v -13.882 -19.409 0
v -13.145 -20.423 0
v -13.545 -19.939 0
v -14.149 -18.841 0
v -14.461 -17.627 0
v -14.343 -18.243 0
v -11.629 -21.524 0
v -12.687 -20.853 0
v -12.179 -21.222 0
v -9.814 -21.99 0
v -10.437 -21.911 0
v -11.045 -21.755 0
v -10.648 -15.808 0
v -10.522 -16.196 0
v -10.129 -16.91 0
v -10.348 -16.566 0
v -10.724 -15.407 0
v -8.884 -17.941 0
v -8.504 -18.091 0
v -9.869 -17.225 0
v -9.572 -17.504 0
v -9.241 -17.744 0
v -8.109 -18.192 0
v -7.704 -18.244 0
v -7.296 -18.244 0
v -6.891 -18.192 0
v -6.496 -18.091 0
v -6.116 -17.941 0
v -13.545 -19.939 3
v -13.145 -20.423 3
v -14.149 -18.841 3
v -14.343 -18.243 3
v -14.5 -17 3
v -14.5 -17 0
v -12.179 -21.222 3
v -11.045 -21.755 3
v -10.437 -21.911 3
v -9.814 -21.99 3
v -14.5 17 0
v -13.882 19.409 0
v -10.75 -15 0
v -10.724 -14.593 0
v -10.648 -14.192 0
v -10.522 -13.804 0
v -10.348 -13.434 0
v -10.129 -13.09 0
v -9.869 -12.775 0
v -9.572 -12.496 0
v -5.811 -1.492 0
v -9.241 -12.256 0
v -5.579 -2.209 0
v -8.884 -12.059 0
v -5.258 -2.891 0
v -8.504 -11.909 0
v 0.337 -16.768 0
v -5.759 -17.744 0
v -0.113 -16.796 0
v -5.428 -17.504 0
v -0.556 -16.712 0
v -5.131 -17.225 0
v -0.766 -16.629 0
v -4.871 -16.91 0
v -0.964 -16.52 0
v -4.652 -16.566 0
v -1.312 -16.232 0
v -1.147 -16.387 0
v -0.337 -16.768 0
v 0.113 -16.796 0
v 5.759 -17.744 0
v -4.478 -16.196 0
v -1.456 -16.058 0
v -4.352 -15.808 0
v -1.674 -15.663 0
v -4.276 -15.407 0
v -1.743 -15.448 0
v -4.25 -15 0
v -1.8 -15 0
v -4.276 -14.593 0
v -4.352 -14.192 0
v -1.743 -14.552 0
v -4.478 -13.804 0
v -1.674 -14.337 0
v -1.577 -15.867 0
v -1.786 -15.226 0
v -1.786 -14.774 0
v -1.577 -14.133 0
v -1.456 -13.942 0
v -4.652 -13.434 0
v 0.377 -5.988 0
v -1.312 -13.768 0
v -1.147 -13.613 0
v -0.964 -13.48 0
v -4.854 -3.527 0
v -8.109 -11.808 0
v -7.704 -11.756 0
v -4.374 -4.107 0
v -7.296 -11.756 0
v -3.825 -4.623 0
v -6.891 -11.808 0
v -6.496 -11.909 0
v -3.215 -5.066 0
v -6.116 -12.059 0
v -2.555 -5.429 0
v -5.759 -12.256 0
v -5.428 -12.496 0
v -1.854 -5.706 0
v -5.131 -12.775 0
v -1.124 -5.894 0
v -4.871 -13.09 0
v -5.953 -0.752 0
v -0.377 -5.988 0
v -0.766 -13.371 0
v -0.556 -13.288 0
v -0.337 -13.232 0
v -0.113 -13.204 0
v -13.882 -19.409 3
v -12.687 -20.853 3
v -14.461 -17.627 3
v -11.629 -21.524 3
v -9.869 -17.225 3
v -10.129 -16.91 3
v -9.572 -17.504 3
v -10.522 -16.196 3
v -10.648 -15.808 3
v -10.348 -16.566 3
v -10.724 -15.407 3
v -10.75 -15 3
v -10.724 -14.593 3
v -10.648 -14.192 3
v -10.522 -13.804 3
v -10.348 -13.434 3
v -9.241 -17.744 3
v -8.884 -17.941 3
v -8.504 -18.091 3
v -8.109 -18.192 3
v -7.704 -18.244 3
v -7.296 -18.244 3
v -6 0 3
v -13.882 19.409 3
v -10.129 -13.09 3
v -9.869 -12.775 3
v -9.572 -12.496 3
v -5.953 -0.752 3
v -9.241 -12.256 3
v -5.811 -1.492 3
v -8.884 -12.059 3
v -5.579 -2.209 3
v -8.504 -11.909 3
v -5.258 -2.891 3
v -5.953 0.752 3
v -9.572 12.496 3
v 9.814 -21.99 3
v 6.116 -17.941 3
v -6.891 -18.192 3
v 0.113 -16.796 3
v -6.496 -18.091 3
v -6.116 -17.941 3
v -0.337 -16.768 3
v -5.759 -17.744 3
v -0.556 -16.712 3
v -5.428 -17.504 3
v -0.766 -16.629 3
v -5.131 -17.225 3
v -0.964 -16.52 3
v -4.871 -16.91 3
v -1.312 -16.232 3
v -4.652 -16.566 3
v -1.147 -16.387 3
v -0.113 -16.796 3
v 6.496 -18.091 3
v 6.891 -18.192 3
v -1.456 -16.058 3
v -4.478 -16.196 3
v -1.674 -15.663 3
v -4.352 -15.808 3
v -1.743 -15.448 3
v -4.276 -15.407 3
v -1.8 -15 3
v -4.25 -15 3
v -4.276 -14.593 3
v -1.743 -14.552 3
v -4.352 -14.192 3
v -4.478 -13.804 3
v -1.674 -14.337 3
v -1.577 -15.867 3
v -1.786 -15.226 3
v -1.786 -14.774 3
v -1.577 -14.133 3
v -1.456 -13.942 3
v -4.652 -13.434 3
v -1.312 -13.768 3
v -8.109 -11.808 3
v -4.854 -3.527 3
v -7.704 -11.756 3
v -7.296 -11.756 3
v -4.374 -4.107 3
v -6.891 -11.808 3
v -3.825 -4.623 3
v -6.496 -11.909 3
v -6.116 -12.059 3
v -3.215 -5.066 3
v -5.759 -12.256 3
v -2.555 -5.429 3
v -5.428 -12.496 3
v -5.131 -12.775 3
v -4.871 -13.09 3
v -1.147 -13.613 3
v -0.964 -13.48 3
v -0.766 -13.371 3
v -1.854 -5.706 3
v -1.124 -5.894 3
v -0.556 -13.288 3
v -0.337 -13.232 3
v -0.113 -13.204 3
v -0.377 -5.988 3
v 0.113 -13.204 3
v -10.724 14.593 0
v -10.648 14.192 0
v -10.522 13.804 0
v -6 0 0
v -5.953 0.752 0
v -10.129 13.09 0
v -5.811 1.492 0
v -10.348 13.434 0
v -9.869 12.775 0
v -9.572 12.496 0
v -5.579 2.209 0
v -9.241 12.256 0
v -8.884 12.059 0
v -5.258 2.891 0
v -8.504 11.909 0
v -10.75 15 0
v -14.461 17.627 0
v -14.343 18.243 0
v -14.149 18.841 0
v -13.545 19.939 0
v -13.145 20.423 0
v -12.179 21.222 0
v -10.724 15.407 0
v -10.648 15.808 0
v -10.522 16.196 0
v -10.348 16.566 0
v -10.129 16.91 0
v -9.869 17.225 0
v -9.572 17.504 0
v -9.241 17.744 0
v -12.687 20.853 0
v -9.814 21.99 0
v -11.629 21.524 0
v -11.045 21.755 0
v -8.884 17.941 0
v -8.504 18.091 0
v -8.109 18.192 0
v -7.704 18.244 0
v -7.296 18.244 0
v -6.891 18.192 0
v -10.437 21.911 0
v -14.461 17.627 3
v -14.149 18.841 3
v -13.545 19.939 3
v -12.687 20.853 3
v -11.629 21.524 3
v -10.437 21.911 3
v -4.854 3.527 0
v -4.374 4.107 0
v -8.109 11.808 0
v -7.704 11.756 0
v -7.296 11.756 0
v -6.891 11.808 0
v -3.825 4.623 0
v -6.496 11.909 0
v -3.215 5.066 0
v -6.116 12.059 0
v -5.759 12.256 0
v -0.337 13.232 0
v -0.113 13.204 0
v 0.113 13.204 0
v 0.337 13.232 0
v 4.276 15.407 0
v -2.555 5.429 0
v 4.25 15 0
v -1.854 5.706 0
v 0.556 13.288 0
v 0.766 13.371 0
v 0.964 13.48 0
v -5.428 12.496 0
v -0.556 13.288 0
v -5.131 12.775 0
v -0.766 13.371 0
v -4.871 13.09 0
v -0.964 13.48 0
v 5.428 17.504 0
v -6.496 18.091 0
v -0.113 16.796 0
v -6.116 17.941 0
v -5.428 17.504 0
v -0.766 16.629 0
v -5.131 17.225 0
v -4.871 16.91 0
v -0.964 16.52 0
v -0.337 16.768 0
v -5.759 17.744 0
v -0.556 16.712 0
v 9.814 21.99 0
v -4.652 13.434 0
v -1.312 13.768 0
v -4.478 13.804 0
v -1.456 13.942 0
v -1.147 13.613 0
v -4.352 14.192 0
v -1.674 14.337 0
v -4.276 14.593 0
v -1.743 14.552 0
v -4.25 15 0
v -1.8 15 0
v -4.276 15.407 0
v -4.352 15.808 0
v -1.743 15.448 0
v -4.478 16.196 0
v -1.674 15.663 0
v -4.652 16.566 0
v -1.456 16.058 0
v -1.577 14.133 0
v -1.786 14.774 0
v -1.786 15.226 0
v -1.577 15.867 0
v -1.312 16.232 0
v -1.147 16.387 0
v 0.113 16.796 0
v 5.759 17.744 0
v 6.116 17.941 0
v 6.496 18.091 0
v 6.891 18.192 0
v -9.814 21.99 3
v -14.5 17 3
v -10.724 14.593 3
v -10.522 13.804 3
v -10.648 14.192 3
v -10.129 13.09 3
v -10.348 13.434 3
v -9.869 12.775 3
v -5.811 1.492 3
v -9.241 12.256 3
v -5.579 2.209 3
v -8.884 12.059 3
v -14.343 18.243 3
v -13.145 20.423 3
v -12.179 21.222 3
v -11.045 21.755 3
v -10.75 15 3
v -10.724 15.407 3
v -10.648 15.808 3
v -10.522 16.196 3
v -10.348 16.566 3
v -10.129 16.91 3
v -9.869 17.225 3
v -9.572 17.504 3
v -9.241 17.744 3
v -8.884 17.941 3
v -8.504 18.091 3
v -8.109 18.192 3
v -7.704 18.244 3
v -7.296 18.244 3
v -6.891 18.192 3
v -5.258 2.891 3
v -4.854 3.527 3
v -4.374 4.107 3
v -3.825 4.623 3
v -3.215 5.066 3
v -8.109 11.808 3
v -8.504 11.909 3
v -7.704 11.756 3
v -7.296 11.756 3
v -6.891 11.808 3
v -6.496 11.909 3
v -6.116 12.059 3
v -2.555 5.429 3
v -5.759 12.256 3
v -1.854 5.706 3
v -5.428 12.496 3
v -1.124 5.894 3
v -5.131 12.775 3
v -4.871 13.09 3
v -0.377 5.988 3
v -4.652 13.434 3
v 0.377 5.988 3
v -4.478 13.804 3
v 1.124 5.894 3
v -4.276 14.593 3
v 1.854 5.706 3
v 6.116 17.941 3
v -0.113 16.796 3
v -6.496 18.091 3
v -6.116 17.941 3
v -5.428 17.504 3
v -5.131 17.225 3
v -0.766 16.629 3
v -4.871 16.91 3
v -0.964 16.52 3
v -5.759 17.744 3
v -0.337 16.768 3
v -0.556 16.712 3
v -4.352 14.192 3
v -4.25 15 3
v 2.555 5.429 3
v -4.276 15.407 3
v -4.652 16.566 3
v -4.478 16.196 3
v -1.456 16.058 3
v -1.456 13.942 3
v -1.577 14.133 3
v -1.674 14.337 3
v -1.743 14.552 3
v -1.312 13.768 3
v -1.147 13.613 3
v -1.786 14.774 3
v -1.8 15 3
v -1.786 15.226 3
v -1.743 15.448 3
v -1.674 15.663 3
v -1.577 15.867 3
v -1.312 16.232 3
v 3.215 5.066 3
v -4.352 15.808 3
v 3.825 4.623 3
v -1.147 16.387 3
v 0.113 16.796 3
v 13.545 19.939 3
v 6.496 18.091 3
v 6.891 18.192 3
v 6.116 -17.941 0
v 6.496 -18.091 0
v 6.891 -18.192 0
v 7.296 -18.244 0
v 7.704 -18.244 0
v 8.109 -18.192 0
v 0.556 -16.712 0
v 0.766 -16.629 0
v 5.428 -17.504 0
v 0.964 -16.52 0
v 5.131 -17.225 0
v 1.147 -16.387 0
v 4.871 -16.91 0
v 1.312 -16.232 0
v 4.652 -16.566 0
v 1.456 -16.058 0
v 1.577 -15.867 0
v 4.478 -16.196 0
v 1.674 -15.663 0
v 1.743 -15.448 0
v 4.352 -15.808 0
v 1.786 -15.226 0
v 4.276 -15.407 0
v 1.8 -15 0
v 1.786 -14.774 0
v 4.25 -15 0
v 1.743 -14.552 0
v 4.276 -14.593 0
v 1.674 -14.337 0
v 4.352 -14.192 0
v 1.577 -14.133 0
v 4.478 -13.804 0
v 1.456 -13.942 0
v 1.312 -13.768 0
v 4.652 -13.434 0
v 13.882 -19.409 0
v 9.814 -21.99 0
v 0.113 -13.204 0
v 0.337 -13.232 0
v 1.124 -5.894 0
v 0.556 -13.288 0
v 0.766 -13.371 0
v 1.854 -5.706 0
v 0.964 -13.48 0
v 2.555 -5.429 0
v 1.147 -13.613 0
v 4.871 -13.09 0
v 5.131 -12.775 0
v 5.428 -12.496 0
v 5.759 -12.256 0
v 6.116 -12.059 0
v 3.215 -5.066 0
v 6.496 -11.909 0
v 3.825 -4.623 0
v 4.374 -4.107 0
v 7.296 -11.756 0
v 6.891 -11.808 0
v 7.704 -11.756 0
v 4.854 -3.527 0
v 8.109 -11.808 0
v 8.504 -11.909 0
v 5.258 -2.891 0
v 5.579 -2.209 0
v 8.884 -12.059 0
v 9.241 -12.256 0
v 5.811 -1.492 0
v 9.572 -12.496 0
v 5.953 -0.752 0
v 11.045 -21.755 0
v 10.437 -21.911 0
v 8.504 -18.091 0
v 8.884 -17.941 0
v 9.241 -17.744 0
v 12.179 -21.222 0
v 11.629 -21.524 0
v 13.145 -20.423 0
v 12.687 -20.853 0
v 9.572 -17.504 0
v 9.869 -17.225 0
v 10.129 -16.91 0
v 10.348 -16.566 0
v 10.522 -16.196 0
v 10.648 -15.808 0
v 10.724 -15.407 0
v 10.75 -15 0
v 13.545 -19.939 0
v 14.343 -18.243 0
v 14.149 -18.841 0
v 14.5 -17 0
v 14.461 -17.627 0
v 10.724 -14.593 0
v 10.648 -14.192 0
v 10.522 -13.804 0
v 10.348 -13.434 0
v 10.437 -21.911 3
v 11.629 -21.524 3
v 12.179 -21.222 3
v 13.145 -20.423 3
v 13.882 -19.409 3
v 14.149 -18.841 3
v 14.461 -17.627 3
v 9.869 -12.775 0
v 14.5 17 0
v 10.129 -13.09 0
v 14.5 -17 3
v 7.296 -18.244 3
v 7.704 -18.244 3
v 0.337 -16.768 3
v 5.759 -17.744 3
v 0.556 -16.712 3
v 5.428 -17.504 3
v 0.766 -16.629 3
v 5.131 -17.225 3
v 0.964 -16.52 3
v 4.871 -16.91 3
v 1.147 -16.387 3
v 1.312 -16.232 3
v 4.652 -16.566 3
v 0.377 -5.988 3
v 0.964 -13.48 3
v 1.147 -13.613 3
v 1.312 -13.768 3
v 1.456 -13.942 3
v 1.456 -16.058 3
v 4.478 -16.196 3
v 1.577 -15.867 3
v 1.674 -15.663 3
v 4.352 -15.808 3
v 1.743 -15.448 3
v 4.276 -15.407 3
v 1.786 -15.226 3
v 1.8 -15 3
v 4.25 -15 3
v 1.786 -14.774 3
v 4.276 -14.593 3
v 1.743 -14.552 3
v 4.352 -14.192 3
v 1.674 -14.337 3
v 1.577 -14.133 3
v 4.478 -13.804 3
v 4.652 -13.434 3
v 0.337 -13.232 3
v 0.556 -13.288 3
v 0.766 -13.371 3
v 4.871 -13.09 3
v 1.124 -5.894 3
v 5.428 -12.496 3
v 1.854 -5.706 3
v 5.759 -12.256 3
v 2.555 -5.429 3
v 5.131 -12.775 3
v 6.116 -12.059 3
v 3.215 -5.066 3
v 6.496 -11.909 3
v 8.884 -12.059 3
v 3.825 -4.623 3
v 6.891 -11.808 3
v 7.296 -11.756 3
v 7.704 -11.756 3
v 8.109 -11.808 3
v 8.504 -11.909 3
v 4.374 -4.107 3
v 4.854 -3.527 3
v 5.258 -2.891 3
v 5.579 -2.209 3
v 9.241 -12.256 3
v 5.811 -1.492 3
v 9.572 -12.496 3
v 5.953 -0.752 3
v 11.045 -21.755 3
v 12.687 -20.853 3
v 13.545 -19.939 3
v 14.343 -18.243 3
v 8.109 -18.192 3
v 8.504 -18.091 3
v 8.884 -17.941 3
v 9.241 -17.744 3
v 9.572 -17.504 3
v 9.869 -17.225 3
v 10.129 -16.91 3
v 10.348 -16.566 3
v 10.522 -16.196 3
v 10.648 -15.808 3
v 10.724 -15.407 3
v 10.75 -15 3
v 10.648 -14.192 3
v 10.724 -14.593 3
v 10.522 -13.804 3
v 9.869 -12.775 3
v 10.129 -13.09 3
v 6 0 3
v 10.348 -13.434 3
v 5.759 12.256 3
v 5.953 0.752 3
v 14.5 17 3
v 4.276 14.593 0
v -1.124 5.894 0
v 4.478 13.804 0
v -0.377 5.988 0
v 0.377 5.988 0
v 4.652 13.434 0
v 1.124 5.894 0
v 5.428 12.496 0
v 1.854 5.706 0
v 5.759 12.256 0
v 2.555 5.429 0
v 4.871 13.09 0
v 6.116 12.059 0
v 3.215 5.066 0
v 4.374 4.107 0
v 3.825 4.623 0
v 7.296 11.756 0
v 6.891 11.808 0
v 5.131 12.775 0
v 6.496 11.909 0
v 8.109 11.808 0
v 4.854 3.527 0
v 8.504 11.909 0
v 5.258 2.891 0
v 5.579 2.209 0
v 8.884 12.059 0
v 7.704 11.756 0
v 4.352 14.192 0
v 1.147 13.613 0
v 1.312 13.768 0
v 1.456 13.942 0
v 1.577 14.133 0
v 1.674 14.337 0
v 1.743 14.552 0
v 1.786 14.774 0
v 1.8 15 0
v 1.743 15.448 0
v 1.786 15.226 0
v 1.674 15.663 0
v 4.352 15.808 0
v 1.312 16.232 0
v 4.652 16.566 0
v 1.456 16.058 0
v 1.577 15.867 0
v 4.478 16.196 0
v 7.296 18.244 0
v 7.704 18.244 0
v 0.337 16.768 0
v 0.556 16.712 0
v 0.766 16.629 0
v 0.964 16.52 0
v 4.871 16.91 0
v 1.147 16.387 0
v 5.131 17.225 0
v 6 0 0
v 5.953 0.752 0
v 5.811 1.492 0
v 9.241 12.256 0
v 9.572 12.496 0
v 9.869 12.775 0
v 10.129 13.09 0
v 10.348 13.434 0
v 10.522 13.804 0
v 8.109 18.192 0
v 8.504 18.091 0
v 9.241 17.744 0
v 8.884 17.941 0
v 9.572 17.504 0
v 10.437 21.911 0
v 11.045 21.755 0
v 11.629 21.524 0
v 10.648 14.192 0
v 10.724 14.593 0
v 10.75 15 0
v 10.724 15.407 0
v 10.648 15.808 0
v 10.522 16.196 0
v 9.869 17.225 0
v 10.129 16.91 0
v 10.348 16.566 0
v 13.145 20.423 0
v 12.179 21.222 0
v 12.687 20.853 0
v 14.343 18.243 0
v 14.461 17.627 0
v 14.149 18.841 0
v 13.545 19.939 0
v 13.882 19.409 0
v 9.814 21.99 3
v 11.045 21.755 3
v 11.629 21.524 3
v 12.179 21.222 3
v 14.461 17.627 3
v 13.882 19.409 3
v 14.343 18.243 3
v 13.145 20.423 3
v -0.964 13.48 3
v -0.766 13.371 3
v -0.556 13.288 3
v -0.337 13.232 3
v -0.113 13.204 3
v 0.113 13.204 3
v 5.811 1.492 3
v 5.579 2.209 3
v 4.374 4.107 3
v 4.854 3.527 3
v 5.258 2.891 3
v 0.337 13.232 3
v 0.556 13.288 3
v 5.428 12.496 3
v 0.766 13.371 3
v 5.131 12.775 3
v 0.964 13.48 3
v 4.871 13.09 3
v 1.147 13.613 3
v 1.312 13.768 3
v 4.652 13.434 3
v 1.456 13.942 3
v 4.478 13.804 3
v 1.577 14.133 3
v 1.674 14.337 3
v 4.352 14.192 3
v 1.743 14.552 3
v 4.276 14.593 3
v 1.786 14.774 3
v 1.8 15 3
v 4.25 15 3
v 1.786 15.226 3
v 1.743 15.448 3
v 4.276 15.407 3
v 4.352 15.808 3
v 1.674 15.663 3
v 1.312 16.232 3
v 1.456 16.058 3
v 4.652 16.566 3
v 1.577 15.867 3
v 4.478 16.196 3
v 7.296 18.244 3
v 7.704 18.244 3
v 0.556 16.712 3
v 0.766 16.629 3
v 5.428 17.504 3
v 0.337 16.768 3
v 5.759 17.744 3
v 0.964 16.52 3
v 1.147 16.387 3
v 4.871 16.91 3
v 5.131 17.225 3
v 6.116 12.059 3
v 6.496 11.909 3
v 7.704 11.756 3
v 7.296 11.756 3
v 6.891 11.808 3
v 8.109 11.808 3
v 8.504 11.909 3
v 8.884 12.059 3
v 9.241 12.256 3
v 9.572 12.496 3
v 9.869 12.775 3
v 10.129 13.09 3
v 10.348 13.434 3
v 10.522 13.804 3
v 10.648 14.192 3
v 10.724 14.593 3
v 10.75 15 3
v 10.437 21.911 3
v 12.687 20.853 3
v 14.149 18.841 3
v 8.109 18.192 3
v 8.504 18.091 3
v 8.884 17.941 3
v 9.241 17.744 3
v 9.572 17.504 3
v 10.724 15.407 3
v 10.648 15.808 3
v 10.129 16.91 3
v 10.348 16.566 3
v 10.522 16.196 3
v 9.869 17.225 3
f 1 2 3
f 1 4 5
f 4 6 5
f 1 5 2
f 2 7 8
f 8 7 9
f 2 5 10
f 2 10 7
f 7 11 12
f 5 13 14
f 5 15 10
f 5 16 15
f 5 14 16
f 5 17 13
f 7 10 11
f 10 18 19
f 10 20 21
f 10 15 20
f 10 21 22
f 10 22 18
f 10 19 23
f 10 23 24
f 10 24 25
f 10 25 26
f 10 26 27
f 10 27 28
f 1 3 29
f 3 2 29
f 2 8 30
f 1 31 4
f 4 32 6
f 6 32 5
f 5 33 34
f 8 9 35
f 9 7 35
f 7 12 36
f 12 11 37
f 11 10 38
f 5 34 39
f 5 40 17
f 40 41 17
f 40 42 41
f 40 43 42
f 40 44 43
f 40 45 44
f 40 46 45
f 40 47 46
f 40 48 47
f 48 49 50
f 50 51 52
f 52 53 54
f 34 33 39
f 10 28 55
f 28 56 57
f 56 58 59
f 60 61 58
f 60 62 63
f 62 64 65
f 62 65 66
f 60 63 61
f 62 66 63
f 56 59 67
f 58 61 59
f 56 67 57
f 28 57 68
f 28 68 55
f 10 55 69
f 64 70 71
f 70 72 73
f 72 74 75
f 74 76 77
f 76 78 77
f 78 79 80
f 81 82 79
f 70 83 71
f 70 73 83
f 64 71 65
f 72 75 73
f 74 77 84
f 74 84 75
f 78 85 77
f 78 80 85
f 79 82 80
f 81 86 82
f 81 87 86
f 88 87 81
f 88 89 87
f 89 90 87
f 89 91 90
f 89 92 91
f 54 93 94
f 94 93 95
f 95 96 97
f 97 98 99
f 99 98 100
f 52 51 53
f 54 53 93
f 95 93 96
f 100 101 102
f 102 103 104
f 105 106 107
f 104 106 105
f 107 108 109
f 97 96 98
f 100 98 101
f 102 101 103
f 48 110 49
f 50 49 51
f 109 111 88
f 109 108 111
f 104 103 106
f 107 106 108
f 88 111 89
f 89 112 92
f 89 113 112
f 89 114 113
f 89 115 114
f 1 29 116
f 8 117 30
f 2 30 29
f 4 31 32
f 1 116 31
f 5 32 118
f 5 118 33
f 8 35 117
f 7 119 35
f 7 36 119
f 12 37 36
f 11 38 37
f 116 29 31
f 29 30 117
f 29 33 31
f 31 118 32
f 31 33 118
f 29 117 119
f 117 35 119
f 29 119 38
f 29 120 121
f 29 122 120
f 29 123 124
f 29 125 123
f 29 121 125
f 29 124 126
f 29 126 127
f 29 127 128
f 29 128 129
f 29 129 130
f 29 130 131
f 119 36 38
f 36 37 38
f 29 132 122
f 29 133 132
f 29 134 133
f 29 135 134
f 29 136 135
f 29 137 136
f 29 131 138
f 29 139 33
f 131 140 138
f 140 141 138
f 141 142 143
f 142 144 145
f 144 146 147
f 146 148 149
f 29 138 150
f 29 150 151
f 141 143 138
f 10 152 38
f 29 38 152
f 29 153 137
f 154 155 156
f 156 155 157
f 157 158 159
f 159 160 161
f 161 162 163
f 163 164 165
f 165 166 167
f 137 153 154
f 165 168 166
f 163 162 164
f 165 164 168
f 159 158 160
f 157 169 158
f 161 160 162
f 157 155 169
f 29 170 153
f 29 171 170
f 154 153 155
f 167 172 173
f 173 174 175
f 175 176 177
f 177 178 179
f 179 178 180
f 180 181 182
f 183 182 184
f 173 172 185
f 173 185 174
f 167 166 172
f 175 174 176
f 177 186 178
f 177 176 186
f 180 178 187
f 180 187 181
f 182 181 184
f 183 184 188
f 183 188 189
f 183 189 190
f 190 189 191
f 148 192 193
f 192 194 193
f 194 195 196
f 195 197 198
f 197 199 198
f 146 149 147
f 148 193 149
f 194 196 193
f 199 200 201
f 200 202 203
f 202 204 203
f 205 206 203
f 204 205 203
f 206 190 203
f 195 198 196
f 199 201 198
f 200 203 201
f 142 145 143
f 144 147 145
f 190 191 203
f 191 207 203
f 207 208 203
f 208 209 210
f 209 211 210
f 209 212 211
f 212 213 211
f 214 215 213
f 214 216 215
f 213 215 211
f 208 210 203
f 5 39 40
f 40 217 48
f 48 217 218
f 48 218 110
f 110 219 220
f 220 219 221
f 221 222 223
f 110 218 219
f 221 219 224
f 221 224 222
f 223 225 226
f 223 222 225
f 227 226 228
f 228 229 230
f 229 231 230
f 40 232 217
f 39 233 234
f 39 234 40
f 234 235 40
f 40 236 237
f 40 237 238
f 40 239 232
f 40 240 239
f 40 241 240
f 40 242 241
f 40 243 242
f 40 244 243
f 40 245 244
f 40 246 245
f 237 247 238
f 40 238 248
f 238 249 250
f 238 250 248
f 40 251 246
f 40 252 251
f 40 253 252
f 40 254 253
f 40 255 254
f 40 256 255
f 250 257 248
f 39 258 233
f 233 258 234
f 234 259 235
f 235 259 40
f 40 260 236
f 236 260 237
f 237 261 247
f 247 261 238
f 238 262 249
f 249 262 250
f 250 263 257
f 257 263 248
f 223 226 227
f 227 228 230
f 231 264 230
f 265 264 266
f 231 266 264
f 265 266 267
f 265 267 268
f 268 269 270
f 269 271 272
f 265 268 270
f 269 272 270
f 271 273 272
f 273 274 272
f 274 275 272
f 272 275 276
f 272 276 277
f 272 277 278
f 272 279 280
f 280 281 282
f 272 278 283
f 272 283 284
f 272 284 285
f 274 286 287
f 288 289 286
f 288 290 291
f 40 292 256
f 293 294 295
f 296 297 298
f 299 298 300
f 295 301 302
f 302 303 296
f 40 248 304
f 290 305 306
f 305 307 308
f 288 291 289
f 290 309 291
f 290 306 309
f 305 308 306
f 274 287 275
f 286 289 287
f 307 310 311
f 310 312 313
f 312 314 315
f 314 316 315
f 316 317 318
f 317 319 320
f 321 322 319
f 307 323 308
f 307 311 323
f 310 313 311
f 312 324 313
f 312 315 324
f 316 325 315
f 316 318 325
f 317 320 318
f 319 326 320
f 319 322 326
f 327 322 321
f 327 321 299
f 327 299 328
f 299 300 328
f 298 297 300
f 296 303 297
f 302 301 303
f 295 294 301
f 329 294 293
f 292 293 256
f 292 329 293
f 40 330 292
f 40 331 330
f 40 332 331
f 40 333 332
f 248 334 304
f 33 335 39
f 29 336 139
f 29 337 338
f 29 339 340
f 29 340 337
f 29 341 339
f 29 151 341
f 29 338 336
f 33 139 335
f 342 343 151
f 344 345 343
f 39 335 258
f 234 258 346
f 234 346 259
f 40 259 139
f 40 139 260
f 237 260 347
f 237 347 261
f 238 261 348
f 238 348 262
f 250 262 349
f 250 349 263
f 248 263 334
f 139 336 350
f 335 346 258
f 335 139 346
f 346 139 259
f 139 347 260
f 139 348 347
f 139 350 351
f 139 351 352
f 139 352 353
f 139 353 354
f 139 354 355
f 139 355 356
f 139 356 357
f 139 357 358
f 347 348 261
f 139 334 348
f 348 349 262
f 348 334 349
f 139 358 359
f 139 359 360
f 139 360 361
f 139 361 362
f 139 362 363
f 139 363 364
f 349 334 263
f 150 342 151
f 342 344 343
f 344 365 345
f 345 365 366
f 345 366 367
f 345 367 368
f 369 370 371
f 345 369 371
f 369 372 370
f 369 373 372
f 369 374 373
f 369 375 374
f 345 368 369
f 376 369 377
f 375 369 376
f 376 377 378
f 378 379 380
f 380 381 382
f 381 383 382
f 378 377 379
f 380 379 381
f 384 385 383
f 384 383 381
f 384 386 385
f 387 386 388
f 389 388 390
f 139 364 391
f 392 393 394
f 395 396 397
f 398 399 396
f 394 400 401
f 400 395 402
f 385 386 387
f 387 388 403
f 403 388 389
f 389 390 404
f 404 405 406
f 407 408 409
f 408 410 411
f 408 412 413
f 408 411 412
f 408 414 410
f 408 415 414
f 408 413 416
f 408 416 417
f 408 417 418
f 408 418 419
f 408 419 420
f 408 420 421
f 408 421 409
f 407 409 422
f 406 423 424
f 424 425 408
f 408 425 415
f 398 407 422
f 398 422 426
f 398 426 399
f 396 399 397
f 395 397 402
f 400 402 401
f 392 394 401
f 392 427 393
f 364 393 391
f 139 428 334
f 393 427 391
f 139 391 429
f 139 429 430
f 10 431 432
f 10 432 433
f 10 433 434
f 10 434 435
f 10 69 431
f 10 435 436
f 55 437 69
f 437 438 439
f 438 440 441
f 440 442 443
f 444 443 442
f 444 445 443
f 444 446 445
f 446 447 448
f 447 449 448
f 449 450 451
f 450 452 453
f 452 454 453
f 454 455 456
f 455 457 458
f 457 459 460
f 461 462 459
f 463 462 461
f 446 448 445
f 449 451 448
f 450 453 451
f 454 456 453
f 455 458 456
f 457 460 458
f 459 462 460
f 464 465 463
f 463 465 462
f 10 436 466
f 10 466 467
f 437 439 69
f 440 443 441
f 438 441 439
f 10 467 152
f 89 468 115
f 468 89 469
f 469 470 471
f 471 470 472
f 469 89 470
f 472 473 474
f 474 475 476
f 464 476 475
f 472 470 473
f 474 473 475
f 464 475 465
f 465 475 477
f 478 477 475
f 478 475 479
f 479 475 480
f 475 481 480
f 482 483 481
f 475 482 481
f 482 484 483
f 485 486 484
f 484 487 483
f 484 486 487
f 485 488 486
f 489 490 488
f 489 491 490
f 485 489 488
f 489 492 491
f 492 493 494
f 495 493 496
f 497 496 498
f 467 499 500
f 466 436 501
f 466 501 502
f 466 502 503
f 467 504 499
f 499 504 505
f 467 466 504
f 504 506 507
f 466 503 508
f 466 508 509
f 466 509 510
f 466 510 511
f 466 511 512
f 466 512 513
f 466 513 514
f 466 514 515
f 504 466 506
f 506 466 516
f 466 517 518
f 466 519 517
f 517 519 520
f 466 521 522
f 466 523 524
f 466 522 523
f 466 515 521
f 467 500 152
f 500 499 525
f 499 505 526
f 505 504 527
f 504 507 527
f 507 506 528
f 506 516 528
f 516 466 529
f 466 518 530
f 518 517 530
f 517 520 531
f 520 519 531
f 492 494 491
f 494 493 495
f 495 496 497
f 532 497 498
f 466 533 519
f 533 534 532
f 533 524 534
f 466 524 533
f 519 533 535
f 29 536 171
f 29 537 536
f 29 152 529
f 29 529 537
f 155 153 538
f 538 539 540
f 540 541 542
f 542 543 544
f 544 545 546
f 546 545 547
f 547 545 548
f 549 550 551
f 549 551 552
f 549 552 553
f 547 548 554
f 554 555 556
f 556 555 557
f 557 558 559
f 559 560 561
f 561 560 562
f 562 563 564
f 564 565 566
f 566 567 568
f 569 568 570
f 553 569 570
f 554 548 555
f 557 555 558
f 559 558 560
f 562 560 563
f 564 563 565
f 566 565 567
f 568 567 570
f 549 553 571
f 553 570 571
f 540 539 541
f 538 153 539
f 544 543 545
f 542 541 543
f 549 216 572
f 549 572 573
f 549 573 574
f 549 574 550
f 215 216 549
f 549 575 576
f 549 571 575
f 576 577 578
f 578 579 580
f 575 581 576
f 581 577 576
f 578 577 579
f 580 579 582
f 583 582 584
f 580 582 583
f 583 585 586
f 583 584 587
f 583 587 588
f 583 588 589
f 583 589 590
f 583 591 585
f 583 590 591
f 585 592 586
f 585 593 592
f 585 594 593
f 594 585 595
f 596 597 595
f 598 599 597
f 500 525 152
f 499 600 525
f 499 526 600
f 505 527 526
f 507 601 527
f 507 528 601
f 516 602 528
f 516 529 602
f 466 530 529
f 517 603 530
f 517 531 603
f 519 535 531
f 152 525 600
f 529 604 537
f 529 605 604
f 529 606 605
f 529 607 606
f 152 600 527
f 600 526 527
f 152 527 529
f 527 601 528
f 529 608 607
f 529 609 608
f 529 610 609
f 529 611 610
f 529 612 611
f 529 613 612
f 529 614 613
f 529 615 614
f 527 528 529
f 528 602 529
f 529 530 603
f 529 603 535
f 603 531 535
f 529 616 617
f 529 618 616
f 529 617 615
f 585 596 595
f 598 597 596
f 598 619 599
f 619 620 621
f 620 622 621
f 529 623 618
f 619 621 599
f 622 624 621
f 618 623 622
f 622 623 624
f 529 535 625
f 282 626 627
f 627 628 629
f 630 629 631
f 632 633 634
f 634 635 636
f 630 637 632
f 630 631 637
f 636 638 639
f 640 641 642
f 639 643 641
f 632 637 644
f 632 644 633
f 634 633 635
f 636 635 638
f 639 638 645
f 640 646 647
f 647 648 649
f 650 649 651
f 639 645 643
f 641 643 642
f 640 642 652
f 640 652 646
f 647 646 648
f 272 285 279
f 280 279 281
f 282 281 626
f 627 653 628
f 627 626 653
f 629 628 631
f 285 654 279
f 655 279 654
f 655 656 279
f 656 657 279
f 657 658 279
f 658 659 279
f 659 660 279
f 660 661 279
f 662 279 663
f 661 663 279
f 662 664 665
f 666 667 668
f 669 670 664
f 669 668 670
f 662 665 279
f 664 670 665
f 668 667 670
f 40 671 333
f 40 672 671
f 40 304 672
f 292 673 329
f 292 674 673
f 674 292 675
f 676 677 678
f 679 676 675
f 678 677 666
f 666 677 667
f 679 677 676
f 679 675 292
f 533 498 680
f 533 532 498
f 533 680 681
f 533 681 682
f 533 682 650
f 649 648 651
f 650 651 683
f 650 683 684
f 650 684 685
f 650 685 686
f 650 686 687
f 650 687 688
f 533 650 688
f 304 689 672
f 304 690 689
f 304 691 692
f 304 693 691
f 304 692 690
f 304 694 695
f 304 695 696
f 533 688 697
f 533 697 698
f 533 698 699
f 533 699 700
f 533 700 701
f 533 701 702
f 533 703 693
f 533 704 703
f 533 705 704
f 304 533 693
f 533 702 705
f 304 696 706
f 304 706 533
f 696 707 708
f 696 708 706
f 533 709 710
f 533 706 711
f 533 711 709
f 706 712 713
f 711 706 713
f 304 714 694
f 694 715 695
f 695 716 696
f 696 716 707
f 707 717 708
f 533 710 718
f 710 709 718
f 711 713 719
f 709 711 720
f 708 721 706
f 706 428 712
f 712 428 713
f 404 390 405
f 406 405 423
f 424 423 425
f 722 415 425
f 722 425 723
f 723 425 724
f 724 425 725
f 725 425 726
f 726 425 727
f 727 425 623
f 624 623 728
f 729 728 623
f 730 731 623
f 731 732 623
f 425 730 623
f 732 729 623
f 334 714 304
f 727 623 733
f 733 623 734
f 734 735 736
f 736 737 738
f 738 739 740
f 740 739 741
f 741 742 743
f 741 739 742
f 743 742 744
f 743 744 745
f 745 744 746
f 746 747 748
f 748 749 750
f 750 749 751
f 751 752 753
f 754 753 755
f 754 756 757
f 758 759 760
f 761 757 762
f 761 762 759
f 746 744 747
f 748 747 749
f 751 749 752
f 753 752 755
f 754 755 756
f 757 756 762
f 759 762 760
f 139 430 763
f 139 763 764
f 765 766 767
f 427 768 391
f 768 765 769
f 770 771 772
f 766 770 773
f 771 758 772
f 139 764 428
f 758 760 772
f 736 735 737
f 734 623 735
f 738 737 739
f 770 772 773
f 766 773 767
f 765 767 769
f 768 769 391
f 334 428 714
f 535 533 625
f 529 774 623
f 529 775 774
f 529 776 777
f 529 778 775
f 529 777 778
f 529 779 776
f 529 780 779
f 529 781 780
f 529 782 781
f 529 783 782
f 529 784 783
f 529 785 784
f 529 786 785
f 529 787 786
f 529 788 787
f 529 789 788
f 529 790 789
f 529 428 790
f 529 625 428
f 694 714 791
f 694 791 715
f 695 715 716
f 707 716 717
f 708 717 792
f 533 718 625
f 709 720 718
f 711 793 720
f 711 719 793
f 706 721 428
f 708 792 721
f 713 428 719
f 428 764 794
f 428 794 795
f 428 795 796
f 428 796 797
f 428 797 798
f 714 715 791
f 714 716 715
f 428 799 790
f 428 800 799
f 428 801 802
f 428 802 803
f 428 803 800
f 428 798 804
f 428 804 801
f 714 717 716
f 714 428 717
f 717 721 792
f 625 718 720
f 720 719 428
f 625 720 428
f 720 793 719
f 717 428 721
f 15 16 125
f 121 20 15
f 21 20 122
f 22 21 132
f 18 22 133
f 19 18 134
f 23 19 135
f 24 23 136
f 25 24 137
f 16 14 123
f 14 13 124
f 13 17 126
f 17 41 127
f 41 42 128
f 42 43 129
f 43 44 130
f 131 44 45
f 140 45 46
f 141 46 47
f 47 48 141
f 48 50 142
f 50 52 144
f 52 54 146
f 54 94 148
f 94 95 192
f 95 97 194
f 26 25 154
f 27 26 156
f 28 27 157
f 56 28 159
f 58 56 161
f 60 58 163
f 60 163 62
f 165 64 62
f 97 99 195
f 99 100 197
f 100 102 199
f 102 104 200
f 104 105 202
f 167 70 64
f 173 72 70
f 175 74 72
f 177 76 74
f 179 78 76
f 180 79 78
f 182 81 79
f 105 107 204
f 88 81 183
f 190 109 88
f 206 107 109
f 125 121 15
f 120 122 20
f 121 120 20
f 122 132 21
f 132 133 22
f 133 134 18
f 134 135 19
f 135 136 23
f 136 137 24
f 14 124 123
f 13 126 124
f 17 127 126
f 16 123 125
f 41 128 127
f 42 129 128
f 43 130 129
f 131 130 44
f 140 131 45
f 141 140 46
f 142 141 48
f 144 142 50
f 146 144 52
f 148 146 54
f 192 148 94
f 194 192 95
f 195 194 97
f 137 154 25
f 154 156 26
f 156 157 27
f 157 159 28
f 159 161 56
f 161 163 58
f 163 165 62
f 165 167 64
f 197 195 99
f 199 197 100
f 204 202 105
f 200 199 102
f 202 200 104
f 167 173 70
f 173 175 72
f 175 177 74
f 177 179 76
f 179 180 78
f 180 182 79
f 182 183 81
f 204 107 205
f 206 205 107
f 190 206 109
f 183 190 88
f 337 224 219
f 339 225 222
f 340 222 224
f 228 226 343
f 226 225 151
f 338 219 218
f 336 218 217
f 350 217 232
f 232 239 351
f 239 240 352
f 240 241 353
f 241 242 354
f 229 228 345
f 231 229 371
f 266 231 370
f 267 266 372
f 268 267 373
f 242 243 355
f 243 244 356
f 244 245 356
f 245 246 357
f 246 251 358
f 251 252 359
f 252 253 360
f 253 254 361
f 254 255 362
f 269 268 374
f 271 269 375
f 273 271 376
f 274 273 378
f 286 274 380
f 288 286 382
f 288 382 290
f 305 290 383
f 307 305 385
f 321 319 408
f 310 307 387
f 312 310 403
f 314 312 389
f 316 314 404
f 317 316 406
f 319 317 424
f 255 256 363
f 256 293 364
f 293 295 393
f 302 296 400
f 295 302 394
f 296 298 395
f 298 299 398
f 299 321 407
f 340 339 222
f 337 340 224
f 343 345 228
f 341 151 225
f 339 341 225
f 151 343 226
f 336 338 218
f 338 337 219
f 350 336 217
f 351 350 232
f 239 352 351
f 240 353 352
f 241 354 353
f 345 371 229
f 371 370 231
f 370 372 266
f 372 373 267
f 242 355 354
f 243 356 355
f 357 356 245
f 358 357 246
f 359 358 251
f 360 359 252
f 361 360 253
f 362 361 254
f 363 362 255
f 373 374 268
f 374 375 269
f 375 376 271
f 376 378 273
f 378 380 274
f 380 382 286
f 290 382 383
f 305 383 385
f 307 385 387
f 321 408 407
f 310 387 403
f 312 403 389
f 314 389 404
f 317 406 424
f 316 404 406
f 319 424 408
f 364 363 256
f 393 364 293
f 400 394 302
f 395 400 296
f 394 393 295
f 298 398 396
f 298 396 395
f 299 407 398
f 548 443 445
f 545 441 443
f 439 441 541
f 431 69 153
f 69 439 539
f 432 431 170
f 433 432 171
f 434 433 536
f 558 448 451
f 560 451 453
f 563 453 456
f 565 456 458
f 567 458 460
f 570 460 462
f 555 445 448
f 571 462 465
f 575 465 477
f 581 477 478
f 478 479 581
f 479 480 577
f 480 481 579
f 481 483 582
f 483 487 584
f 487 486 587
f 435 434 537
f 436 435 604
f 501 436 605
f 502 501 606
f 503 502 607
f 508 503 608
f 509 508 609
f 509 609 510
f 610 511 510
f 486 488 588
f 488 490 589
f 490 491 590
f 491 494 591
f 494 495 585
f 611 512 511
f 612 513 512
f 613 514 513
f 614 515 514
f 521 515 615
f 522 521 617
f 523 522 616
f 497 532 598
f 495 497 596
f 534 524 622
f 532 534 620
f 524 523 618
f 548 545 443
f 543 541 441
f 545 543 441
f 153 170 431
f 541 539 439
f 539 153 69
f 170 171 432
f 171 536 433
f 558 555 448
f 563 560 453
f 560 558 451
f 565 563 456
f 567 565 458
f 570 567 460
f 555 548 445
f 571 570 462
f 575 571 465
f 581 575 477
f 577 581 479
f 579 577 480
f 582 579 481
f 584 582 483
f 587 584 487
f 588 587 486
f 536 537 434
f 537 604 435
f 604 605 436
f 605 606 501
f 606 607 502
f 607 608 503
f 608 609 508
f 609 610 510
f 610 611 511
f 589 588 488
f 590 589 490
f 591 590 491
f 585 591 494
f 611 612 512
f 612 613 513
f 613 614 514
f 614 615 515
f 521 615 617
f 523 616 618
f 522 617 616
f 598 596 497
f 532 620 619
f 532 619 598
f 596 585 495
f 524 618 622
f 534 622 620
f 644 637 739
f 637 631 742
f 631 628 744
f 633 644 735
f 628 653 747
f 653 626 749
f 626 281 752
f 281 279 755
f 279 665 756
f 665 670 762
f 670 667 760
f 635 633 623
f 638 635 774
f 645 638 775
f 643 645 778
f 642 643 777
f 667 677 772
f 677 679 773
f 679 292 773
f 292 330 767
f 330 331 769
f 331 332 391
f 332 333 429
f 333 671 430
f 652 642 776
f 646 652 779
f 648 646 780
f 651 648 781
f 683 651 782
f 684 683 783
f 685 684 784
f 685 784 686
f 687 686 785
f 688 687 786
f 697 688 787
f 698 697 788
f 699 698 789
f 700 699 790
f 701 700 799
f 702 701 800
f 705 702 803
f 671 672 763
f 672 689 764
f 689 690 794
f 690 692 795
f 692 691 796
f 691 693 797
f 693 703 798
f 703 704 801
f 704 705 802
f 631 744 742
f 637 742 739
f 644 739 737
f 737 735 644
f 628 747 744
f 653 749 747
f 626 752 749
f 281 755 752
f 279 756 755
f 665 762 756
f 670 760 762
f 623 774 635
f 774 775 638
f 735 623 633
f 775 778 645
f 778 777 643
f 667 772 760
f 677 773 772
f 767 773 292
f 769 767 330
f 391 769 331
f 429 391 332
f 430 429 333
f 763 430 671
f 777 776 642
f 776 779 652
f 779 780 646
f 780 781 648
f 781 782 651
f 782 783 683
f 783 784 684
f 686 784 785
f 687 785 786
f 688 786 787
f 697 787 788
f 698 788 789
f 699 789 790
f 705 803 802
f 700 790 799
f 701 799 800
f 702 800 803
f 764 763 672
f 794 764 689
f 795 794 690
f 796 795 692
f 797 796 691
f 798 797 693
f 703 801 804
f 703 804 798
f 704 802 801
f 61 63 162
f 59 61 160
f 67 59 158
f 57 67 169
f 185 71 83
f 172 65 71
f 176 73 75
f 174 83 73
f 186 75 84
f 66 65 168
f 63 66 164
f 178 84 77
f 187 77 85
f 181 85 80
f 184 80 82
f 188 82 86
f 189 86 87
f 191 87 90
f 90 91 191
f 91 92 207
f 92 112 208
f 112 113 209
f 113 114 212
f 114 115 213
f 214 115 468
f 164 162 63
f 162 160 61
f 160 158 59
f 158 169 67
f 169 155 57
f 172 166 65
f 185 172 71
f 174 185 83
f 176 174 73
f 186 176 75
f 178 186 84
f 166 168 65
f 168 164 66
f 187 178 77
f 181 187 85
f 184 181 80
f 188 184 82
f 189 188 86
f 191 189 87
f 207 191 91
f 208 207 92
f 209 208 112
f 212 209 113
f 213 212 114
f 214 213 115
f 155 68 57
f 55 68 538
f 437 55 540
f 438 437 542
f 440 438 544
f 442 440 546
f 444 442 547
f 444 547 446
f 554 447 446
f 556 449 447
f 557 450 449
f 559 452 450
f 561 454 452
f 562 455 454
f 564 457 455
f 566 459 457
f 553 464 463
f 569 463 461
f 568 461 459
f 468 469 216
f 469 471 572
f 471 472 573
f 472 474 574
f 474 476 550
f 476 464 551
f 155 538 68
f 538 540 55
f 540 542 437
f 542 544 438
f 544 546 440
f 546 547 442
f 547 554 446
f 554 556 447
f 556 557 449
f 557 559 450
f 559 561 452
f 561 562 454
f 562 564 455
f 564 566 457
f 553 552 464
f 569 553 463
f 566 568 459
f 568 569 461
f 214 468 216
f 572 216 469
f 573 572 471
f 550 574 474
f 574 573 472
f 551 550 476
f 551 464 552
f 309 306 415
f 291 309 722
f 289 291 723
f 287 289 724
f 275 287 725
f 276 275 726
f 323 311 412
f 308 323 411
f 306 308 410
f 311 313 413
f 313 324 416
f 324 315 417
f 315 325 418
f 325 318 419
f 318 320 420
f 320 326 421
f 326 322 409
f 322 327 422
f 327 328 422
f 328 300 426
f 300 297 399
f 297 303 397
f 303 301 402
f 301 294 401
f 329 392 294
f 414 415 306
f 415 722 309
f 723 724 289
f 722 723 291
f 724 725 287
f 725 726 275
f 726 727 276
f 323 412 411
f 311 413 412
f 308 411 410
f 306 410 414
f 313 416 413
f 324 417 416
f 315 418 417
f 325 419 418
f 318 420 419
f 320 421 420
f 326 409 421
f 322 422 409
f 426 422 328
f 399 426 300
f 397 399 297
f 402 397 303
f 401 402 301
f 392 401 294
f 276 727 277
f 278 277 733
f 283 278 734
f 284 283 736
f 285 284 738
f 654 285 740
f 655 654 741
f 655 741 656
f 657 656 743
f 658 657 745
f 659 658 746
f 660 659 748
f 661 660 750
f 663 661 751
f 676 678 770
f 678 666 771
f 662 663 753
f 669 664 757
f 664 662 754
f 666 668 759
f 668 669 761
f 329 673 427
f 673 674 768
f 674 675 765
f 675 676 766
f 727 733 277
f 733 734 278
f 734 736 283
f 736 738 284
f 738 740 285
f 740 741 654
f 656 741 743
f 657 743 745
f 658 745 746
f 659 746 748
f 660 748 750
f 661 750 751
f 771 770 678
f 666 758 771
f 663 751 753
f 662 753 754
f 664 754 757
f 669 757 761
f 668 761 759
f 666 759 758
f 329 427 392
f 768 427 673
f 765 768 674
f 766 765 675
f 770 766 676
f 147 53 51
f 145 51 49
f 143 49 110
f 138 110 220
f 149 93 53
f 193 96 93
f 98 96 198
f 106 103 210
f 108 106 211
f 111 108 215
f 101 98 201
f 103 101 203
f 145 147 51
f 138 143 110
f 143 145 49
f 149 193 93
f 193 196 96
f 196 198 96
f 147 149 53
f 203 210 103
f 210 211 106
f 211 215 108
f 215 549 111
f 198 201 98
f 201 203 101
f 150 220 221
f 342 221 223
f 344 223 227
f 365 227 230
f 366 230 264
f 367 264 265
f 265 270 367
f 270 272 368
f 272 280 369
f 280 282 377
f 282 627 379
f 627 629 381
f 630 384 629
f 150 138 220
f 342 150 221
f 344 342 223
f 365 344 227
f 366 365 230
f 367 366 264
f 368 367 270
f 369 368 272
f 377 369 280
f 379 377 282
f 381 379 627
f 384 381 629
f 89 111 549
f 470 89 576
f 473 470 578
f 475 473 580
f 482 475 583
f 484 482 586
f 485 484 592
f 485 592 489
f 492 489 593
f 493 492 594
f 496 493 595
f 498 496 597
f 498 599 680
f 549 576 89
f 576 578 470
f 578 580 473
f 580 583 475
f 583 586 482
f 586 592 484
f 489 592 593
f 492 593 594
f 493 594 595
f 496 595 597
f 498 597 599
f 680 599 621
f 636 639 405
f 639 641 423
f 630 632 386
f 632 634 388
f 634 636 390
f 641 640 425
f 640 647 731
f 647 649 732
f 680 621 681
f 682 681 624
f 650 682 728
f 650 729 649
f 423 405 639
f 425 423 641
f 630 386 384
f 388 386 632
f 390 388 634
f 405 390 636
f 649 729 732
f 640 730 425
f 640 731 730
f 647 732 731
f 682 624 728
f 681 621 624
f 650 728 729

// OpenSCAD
$fn = 50;

difference() {
	union() {
		hull() {
			translate(v = [-9.5, 17.0, 0]) {
				cylinder(h = 3, r = 5);
			}
			translate(v = [9.5, 17.0, 0]) {
				cylinder(h = 3, r = 5);
			}
			translate(v = [-9.5, -17.0, 0]) {
				cylinder(h = 3, r = 5);
			}
			translate(v = [9.5, -17.0, 0]) {
				cylinder(h = 3, r = 5);
			}
		}
	}
	union() {
		translate(v = [-7.5, -15.0, 0]) {
			cylinder(h = 3, r = 3.25);
		}
		translate(v = [-7.5, 15.0, 0]) {
			cylinder(h = 3, r = 3.25);
		}
		translate(v = [7.5, -15.0, 0]) {
			cylinder(h = 3, r = 3.25);
		}
		translate(v = [7.5, 15.0, 0]) {
			cylinder(h = 3, r = 3.25);
		}
		translate(v = [0.0, -15.0, 0]) {
			cylinder(h = 3, r = 1.8);
		}
		translate(v = [0.0, 15.0, 0]) {
			cylinder(h = 3, r = 1.8);
		}
		cylinder(h = 3, r = 6.0);
	}
}
